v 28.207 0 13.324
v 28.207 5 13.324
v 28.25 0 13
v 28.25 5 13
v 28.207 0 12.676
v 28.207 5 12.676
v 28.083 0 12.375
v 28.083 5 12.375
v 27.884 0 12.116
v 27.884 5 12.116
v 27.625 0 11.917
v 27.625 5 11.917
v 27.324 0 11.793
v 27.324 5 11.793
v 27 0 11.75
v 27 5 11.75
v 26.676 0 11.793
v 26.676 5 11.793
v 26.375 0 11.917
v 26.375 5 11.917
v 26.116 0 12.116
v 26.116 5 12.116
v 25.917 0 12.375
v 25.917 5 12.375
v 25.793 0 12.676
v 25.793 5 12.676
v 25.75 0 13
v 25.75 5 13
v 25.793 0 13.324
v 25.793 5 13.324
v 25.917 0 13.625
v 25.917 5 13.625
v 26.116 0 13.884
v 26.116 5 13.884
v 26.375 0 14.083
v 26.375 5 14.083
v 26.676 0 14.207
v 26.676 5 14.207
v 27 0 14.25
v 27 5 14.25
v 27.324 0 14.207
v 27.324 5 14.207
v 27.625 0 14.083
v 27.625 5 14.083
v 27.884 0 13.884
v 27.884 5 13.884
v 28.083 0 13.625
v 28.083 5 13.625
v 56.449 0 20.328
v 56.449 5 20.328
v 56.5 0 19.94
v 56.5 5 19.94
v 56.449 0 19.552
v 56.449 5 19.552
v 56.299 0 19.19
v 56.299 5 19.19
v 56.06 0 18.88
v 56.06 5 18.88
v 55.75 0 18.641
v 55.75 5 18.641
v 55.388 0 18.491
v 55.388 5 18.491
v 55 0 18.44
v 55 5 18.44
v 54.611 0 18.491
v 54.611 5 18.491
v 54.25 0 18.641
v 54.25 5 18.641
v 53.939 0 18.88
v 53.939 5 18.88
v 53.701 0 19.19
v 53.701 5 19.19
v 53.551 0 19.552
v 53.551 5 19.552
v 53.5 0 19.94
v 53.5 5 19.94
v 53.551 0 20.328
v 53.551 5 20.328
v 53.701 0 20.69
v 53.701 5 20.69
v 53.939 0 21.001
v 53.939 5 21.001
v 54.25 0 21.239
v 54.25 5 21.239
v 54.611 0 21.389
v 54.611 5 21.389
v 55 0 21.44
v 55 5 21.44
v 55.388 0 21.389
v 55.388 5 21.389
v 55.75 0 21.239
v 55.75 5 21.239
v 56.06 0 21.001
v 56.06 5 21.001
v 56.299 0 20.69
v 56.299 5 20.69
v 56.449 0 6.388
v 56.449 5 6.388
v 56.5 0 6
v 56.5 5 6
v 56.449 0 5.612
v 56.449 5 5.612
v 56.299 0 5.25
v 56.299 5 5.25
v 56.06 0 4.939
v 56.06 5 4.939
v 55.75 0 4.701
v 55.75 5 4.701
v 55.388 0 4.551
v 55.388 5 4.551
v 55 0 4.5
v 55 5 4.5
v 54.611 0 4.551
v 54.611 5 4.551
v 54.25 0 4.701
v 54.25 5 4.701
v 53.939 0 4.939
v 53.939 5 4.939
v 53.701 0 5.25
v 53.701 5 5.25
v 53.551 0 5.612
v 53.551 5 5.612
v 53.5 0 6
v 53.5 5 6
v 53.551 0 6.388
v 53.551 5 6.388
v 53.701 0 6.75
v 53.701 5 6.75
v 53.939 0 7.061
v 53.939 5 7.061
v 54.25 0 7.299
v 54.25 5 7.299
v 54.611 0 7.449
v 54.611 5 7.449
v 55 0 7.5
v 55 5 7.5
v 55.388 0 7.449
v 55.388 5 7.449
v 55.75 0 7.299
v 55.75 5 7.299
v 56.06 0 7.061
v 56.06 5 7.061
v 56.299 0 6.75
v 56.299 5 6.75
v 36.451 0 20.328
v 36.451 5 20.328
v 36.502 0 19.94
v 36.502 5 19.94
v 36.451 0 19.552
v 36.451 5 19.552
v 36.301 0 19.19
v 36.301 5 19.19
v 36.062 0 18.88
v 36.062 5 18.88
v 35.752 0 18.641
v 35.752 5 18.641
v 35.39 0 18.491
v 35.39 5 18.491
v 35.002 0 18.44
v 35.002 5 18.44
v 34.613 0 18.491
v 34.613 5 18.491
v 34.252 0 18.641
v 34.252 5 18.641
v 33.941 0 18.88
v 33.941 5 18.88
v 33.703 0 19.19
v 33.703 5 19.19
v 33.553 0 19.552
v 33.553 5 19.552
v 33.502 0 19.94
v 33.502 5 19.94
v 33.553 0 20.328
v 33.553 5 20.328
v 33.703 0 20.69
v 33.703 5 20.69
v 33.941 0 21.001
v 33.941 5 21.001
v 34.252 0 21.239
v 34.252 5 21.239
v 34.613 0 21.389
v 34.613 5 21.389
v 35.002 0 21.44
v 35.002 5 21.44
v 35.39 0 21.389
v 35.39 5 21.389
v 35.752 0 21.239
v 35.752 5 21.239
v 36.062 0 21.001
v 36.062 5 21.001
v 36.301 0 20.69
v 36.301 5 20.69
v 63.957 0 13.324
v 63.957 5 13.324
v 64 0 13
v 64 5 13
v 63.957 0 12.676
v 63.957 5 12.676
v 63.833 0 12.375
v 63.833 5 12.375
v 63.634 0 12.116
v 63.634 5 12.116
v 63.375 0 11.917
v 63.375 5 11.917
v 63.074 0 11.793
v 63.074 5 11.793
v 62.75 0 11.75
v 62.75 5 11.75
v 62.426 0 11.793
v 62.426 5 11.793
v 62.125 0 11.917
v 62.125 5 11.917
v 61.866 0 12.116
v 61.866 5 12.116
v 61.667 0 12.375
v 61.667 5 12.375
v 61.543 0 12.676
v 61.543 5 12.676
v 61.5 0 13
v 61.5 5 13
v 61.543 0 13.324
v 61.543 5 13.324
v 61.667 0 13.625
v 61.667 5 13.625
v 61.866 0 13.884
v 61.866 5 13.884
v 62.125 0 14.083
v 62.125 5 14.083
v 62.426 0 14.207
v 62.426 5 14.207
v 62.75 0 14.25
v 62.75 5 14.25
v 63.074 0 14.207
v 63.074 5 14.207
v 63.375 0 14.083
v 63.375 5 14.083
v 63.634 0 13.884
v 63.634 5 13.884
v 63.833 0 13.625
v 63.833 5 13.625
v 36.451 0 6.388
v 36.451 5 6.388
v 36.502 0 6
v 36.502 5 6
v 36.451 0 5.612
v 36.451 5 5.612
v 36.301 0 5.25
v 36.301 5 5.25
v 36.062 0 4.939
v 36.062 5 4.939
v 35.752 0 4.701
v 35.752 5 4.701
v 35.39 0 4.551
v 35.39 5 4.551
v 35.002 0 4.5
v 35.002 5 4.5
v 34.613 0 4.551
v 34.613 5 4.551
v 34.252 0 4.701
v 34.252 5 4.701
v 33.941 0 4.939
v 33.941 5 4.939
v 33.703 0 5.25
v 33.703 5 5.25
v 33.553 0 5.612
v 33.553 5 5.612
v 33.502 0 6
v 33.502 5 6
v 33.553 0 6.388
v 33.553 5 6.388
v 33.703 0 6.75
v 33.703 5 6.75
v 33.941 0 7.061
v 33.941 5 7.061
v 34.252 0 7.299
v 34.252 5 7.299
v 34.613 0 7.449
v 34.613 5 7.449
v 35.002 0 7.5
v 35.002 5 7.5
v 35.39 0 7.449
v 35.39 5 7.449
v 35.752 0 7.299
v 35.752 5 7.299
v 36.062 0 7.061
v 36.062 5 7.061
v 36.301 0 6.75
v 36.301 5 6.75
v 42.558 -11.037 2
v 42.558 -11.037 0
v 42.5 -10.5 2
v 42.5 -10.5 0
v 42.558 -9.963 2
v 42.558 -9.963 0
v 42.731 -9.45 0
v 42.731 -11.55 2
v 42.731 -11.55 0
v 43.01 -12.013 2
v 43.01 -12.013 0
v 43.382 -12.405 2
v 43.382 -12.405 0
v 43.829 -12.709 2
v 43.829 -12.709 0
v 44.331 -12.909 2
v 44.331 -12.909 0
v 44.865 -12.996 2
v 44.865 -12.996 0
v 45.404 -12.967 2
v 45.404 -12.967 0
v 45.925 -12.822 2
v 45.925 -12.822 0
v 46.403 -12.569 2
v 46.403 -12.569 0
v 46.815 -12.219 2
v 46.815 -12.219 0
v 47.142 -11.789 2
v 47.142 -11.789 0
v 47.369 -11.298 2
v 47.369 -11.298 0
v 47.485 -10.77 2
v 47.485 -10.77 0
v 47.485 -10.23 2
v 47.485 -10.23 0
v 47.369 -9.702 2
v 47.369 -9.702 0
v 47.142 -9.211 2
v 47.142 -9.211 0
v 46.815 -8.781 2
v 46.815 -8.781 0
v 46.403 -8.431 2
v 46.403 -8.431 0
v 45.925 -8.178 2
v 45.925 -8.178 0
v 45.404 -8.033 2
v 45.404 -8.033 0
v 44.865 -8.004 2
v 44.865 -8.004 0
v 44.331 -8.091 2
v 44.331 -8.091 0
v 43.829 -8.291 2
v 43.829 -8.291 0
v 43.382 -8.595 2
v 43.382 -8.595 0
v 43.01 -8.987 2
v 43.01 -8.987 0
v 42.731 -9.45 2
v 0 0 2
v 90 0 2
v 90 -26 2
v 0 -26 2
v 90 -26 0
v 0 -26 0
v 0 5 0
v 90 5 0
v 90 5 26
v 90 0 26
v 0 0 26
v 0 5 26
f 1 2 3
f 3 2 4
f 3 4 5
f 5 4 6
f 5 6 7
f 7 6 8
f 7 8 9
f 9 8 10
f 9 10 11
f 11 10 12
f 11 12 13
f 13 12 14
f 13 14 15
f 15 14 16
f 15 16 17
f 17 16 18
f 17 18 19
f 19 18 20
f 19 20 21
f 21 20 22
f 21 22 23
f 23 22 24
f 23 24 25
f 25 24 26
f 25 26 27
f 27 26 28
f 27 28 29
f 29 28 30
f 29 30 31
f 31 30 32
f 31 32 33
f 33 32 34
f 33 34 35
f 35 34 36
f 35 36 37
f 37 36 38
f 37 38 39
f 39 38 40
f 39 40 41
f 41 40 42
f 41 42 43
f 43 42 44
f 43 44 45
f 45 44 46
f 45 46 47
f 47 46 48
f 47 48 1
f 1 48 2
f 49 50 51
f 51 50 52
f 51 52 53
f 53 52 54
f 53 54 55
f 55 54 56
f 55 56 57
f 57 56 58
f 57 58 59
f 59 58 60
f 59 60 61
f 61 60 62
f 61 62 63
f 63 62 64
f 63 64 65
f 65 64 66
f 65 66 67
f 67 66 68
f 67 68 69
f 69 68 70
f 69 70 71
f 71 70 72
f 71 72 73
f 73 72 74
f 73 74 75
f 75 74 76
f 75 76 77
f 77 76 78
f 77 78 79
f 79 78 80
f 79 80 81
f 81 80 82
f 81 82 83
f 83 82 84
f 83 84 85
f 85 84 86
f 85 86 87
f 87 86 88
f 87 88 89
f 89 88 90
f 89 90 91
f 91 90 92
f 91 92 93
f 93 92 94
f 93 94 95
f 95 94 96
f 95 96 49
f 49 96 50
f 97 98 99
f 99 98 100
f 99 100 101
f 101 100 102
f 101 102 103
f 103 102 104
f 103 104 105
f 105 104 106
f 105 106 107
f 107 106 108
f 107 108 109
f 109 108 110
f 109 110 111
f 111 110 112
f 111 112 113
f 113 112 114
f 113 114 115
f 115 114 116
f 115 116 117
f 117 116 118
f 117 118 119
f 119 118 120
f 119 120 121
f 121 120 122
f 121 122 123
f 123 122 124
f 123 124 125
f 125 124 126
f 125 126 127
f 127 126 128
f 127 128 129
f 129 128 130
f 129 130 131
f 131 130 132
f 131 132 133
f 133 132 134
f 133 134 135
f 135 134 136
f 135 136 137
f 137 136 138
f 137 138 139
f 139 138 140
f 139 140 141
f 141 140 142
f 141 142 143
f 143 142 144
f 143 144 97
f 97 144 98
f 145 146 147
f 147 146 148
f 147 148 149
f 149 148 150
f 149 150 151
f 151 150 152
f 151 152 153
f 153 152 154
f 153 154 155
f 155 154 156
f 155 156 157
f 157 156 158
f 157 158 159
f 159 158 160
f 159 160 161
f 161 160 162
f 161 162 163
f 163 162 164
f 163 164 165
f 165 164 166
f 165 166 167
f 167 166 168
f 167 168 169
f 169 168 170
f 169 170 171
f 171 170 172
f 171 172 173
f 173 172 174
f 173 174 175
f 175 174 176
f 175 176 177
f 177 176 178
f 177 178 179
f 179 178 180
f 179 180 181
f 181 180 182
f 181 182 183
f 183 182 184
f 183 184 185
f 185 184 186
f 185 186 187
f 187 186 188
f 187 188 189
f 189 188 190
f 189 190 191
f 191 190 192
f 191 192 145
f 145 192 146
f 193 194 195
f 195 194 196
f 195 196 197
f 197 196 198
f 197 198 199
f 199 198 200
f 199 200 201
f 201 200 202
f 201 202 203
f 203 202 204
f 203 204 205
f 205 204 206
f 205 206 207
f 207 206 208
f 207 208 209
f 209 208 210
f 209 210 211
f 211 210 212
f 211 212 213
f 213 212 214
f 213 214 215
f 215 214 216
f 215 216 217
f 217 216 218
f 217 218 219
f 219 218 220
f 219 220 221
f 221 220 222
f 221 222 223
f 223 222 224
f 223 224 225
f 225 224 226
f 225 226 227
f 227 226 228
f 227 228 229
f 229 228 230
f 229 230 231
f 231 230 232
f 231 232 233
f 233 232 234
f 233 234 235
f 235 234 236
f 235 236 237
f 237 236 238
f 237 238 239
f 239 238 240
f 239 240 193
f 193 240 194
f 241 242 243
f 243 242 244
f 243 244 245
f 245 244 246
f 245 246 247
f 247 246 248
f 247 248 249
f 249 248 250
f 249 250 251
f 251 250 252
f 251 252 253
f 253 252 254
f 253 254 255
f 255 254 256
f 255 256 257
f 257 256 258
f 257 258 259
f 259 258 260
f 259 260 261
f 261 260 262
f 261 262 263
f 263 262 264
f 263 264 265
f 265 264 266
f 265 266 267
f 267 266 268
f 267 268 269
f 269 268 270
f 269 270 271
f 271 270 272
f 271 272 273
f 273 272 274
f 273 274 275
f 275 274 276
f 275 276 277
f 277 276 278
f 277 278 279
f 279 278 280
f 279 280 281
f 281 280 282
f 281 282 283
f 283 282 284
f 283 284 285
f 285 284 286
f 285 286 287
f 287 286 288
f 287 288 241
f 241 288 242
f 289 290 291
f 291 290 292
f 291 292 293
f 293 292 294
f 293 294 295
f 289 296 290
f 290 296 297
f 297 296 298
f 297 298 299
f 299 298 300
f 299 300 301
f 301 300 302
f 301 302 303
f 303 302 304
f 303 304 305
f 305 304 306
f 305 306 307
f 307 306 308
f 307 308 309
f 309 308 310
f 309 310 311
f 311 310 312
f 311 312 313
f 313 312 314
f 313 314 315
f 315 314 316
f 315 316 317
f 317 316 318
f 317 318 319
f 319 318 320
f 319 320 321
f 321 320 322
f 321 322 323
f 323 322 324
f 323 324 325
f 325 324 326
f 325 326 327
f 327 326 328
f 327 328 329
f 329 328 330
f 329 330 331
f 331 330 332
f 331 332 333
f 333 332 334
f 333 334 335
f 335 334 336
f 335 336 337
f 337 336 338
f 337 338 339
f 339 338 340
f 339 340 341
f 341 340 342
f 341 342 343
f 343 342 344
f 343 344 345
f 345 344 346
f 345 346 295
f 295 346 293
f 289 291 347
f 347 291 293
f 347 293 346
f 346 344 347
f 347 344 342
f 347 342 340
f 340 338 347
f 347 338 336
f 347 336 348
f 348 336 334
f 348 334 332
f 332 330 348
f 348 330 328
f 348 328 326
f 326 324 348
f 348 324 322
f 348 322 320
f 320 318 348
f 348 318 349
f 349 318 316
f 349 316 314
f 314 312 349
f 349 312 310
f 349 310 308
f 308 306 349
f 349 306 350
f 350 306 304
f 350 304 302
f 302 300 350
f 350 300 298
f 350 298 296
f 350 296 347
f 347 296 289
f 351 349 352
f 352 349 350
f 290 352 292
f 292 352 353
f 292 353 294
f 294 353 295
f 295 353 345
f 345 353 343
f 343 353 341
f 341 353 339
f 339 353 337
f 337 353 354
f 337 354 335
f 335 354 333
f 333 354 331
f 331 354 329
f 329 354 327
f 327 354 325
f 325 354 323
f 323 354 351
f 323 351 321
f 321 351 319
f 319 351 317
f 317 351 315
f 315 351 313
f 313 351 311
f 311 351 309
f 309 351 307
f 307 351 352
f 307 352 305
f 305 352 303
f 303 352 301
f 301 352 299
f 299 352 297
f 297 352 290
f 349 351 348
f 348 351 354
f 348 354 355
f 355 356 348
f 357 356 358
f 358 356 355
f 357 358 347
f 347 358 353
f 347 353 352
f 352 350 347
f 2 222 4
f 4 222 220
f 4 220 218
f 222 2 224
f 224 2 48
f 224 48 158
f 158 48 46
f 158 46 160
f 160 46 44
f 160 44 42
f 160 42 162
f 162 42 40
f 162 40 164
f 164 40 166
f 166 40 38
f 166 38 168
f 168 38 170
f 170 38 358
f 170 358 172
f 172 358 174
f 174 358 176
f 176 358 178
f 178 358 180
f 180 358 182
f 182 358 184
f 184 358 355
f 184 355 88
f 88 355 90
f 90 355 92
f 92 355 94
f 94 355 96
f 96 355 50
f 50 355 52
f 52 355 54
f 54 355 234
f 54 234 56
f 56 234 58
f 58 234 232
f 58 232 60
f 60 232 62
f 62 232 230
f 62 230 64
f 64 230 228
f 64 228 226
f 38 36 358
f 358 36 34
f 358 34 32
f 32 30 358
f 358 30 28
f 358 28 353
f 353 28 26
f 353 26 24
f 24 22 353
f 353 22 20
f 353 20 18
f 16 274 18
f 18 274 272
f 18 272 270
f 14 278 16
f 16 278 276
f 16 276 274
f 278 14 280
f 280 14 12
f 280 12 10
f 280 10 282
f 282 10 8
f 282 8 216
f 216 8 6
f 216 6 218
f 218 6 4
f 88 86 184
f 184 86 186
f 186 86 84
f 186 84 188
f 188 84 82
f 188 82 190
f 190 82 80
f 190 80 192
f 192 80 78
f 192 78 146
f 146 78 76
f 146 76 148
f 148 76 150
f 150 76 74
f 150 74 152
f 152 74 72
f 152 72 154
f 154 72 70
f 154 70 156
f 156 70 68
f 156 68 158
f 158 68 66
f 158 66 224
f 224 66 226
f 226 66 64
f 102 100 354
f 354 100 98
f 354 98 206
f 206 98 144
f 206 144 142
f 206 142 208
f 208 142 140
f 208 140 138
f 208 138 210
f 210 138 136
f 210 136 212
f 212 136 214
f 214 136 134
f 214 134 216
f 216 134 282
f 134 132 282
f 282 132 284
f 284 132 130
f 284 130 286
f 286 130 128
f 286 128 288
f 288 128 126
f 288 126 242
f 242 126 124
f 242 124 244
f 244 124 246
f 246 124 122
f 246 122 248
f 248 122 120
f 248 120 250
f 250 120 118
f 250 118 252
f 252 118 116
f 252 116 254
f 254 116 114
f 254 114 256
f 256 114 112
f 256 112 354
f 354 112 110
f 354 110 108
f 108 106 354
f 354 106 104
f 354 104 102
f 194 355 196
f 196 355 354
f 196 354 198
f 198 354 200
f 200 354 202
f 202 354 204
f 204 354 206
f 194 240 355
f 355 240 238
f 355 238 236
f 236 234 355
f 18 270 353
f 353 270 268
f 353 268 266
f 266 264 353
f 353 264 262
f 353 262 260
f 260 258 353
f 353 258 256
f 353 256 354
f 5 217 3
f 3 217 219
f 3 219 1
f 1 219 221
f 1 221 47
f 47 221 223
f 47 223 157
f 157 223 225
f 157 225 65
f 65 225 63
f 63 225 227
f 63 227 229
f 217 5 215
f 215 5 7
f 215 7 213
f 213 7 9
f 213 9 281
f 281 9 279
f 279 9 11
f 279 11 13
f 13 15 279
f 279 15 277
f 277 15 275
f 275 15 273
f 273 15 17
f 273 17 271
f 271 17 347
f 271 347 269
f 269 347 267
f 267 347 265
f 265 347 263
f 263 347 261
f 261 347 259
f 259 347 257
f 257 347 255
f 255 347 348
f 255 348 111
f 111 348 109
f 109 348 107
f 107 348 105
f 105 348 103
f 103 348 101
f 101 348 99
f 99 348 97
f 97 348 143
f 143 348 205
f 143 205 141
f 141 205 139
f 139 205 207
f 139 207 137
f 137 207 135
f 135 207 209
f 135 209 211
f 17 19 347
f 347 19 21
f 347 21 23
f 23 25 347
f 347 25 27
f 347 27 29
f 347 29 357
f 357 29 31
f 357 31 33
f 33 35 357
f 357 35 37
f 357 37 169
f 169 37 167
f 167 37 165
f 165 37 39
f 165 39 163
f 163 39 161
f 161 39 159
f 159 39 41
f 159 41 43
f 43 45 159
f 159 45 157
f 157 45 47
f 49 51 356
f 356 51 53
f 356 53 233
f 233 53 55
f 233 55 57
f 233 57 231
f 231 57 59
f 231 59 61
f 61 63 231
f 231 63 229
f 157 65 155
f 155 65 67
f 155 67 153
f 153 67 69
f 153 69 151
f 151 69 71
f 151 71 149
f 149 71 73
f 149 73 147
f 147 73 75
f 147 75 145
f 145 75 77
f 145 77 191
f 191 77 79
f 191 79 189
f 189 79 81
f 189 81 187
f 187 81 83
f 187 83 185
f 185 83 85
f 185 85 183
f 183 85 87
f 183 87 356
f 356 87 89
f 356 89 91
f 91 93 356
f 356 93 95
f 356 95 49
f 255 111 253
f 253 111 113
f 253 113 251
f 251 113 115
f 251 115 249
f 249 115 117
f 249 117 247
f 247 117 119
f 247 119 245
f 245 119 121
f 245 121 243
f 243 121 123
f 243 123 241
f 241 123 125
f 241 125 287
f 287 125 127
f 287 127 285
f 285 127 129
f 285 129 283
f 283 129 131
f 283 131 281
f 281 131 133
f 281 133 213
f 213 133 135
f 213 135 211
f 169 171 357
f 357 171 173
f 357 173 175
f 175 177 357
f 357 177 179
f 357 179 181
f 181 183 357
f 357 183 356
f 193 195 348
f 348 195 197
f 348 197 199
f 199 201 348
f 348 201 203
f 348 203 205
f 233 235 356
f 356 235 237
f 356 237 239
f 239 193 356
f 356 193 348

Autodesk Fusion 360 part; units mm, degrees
sketch "Sketch1" plane through (0, 0, 0) normal (0, 1, 0) x (1, 0, 0)
  line L0 (0, 0) -> (90, 0)
  line L1 (90, 0) -> (90, -26)
  line L2 (0, 0) -> (0, -26)
  line L3 (0, -26) -> (90, -26)
  dimension "d1" = 90
  dimension "d2" = 26
  dimension "d3" = 26
extrude "Extrude1" add sketch "Sketch1" along normal blind 5
sketch "Sketch2" plane through (0, 0, 0) normal (0, -1, 0) x (1, 0, 0)
  line L0 (0, 26) -> (0, 0)
  line L1 (0, 0) -> (90, 0)
  line L2 (90, 0) -> (90, 26)
  line L3 (90, 26) -> (0, 26)
  line L4 (0, 0) -> (90, 0)
  line L5 (90, 0) -> (90, 2)
  line L6 (0, 0) -> (0, 2)
  line L7 (0, 2) -> (90, 2)
  dimension "d6" = 2
  dimension "d7" = 2
extrude "Extrude2" add sketch "Sketch2" along normal blind 26 contours L0 L1 L2 L4 L5 L6 L7
sketch "Sketch3" plane through (0, 0, 0) normal (0, 0, -1) x (1, 0, 0)
  line L0 (0, 26) -> (0, -5)
  line L1 (0, -5) -> (90, -5)
  line L2 (90, -5) -> (90, 26)
  line L3 (90, 26) -> (0, 26)
  line L4 (90, 10.5) -> (0, 10.5) construction
  line L5 (45, 26) -> (45, -5) construction
  circle A0 centre (45, 10.5) radius 2.5
  dimension "d10" = 5
extrude "Extrude3" cut sketch "Sketch3" against normal blind 3 contours A0
sketch "Sketch4" plane through (0, 5, 0) normal (0, 1, 0) x (-1, 0, 0)
  line L0 (0, 0) -> (0, 26)
  line L1 (0, 26) -> (-90, 26)
  line L2 (-90, 26) -> (-90, 0)
  line L3 (-90, 0) -> (0, 0)
  line L4 (-90, 13) -> (0, 13) construction
  line L5 (-45, 26) -> (-45, 0) construction
  line L6 (-90, 7.6084) -> (-73, 7.6084) construction
  line L7 (-73, 7.6084) -> (-71.75, 7.6084) construction
  line L8 (-70.5, 7.6084) -> (-28.5, 7.6084) construction
  line L9 (-28.5, 7.6084) -> (-27.25, 7.6084) construction
  line L10 (-27.25, 7.6084) -> (-27.25, 13) construction
  line L11 (-71.75, 7.6084) -> (-71.75, 13) construction
  circle A0 centre (-27.25, 13) radius 1.25
  circle A1 centre (-71.75, 13) radius 1.25
  dimension "d13" = 17
  dimension "d15" = 1.25
  dimension "d17" = 42
  dimension "d18" = 1.25
  dimension "d20" = 2.5
  dimension "d21" = 2.5
sketch "Sketch5" plane through (0, 5, 0) normal (0, 1, 0) x (-1, 0, 0)
  line L0 (0, 0) -> (0, 26)
  line L1 (0, 26) -> (-90, 26)
  line L2 (-90, 26) -> (-90, 0)
  line L3 (-90, 0) -> (0, 0)
  line L4 (-90, 13) -> (0, 13) construction
  line L5 (-45, 0) -> (-45, 26) construction
  line L6 (-90, 19.9402) -> (0, 19.9402) construction
  line L7 (-35.0017, 26) -> (-35.0017, 0) construction
  line L8 (-54.9997, 26) -> (-54.9997, 0) construction
  circle A0 centre (-54.9997, 19.9402) radius 1.5
  circle A1 centre (-35.0017, 19.9402) radius 1.5
  line L9 (0, 6) -> (-90, 6) construction
  circle A2 centre (-35.0017, 6) radius 1.5
  circle A3 centre (-54.9997, 6) radius 1.5
  line L10 (-90, 13) -> (-62.75, 13) construction
  circle A4 centre (-62.75, 13) radius 1.25
  dimension "d24" = 3
  dimension "d25" = 3
  dimension "d27" = 3
  dimension "d28" = 3
  dimension "d29" = 27.25
  dimension "d30" = 2.5
extrude "Extrude5" cut sketch "Sketch5" against normal blind 5 contours A0 | A1 | A2 | A3 | A4
sketch "Sketch6" plane through (0, 5, 0) normal (0, 1, 0) x (-1, 0, 0)
  circle A0 centre (-54.9997, 19.9402) radius 1.5
  circle A1 centre (-54.9997, 6) radius 1.5
  circle A2 centre (-35.0017, 19.9402) radius 1.5
  circle A3 centre (-62.75, 13) radius 1.25
  circle A4 centre (-35.0017, 6) radius 1.5
  line L0 (0, 0) -> (0, 26)
  line L1 (0, 26) -> (-90, 26)
  line L2 (-90, 26) -> (-90, 0)
  line L3 (-90, 0) -> (0, 0)
  line L4 (0, 13) -> (-90, 13) construction
  line L5 (0, 9) -> (-27, 9) construction
  line L6 (-27, 9) -> (-27, 13) construction
  circle A5 centre (-27, 13) radius 1.25
  dimension "d33" = 27
  dimension "d34" = 2.5
extrude "Extrude6" cut sketch "Sketch6" against normal blind 5 contours A5
